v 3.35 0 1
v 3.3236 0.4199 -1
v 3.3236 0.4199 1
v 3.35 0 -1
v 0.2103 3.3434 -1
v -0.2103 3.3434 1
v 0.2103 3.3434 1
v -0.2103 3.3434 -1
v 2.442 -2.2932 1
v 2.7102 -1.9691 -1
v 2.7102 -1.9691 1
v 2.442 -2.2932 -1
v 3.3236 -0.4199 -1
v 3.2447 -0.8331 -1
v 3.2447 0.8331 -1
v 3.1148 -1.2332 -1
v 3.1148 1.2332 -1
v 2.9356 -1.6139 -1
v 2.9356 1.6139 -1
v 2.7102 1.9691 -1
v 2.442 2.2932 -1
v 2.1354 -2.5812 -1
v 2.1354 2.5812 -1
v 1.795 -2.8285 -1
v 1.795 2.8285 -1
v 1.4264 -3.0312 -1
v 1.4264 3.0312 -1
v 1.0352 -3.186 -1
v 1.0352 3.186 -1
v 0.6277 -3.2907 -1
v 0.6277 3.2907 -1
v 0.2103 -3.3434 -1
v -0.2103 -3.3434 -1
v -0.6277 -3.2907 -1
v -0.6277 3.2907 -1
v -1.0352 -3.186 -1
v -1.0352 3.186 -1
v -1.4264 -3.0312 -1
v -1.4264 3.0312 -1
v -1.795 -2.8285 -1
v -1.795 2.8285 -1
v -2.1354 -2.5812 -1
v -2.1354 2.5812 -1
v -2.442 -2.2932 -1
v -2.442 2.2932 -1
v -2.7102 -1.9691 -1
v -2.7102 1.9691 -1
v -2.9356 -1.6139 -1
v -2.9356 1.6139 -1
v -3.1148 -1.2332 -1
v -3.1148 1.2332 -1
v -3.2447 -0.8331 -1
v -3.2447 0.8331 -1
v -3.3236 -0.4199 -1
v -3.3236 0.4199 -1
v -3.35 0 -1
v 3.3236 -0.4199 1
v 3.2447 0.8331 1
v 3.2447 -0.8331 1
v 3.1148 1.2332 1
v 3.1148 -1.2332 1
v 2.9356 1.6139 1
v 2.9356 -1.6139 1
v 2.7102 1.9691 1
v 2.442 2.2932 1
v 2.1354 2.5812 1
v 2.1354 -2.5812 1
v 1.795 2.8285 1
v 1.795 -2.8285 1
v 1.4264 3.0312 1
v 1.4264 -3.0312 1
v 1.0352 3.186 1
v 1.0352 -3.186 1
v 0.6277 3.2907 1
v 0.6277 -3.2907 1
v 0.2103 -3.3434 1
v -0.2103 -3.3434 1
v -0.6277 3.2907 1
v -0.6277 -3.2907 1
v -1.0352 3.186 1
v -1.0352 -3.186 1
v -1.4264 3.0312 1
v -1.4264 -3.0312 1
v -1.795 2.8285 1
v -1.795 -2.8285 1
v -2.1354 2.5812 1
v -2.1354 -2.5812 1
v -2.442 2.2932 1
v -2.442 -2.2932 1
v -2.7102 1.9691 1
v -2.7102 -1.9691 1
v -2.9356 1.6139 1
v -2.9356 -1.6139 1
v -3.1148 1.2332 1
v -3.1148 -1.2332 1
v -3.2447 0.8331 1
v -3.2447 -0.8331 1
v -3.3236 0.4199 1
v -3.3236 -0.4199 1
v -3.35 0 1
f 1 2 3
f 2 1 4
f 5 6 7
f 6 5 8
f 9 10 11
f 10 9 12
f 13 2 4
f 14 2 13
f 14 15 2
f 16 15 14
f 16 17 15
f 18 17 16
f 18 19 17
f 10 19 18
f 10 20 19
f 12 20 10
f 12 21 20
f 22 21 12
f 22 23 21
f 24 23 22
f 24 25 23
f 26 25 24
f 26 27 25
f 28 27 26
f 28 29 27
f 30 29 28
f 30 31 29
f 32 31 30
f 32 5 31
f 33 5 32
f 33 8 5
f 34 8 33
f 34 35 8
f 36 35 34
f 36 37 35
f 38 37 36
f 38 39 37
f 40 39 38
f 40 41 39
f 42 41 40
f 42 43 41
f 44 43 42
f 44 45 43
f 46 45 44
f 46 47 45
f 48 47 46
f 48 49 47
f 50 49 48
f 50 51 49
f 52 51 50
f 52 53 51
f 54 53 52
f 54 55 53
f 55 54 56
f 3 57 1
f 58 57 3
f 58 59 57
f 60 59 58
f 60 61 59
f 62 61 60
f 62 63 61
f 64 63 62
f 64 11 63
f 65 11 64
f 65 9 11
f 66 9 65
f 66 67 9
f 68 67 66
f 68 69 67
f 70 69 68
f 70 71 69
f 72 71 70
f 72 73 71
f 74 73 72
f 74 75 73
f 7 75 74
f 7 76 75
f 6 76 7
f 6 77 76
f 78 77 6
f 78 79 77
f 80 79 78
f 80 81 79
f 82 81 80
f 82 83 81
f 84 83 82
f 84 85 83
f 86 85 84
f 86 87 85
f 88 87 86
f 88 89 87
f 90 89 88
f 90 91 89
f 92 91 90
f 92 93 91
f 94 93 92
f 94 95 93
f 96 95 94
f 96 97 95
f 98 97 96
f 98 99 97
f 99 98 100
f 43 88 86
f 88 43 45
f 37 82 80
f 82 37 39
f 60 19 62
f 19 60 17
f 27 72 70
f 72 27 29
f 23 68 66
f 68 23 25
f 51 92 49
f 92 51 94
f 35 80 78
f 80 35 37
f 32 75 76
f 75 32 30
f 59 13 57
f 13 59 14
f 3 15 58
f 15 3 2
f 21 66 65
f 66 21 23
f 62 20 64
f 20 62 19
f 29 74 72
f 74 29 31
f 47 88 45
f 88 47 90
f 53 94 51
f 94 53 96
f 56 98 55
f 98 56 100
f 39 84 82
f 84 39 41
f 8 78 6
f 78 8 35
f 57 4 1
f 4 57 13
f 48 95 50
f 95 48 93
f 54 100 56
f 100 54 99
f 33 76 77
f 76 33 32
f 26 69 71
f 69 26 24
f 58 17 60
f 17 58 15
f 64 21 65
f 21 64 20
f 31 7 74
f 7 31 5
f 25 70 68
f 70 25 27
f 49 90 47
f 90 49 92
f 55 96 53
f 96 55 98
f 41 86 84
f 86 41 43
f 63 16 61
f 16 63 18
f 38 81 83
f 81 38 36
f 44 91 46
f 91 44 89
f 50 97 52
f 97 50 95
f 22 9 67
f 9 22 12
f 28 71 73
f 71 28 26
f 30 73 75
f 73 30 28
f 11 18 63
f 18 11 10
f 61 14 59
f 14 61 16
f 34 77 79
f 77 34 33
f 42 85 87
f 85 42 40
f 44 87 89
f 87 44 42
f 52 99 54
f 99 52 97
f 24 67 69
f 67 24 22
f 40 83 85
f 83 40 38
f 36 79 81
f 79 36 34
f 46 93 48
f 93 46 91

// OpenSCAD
$fn = 50;


difference() {
	union() {
		translate(v = [0, 0, -1.0000000000]) {
			cylinder(h = 2, r = 3.3500000000);
		}
	}
	union() {
		translate(v = [0, 0, -100.0000000000]) {
			cylinder(h = 200, r = 0);
		}
	}
}
